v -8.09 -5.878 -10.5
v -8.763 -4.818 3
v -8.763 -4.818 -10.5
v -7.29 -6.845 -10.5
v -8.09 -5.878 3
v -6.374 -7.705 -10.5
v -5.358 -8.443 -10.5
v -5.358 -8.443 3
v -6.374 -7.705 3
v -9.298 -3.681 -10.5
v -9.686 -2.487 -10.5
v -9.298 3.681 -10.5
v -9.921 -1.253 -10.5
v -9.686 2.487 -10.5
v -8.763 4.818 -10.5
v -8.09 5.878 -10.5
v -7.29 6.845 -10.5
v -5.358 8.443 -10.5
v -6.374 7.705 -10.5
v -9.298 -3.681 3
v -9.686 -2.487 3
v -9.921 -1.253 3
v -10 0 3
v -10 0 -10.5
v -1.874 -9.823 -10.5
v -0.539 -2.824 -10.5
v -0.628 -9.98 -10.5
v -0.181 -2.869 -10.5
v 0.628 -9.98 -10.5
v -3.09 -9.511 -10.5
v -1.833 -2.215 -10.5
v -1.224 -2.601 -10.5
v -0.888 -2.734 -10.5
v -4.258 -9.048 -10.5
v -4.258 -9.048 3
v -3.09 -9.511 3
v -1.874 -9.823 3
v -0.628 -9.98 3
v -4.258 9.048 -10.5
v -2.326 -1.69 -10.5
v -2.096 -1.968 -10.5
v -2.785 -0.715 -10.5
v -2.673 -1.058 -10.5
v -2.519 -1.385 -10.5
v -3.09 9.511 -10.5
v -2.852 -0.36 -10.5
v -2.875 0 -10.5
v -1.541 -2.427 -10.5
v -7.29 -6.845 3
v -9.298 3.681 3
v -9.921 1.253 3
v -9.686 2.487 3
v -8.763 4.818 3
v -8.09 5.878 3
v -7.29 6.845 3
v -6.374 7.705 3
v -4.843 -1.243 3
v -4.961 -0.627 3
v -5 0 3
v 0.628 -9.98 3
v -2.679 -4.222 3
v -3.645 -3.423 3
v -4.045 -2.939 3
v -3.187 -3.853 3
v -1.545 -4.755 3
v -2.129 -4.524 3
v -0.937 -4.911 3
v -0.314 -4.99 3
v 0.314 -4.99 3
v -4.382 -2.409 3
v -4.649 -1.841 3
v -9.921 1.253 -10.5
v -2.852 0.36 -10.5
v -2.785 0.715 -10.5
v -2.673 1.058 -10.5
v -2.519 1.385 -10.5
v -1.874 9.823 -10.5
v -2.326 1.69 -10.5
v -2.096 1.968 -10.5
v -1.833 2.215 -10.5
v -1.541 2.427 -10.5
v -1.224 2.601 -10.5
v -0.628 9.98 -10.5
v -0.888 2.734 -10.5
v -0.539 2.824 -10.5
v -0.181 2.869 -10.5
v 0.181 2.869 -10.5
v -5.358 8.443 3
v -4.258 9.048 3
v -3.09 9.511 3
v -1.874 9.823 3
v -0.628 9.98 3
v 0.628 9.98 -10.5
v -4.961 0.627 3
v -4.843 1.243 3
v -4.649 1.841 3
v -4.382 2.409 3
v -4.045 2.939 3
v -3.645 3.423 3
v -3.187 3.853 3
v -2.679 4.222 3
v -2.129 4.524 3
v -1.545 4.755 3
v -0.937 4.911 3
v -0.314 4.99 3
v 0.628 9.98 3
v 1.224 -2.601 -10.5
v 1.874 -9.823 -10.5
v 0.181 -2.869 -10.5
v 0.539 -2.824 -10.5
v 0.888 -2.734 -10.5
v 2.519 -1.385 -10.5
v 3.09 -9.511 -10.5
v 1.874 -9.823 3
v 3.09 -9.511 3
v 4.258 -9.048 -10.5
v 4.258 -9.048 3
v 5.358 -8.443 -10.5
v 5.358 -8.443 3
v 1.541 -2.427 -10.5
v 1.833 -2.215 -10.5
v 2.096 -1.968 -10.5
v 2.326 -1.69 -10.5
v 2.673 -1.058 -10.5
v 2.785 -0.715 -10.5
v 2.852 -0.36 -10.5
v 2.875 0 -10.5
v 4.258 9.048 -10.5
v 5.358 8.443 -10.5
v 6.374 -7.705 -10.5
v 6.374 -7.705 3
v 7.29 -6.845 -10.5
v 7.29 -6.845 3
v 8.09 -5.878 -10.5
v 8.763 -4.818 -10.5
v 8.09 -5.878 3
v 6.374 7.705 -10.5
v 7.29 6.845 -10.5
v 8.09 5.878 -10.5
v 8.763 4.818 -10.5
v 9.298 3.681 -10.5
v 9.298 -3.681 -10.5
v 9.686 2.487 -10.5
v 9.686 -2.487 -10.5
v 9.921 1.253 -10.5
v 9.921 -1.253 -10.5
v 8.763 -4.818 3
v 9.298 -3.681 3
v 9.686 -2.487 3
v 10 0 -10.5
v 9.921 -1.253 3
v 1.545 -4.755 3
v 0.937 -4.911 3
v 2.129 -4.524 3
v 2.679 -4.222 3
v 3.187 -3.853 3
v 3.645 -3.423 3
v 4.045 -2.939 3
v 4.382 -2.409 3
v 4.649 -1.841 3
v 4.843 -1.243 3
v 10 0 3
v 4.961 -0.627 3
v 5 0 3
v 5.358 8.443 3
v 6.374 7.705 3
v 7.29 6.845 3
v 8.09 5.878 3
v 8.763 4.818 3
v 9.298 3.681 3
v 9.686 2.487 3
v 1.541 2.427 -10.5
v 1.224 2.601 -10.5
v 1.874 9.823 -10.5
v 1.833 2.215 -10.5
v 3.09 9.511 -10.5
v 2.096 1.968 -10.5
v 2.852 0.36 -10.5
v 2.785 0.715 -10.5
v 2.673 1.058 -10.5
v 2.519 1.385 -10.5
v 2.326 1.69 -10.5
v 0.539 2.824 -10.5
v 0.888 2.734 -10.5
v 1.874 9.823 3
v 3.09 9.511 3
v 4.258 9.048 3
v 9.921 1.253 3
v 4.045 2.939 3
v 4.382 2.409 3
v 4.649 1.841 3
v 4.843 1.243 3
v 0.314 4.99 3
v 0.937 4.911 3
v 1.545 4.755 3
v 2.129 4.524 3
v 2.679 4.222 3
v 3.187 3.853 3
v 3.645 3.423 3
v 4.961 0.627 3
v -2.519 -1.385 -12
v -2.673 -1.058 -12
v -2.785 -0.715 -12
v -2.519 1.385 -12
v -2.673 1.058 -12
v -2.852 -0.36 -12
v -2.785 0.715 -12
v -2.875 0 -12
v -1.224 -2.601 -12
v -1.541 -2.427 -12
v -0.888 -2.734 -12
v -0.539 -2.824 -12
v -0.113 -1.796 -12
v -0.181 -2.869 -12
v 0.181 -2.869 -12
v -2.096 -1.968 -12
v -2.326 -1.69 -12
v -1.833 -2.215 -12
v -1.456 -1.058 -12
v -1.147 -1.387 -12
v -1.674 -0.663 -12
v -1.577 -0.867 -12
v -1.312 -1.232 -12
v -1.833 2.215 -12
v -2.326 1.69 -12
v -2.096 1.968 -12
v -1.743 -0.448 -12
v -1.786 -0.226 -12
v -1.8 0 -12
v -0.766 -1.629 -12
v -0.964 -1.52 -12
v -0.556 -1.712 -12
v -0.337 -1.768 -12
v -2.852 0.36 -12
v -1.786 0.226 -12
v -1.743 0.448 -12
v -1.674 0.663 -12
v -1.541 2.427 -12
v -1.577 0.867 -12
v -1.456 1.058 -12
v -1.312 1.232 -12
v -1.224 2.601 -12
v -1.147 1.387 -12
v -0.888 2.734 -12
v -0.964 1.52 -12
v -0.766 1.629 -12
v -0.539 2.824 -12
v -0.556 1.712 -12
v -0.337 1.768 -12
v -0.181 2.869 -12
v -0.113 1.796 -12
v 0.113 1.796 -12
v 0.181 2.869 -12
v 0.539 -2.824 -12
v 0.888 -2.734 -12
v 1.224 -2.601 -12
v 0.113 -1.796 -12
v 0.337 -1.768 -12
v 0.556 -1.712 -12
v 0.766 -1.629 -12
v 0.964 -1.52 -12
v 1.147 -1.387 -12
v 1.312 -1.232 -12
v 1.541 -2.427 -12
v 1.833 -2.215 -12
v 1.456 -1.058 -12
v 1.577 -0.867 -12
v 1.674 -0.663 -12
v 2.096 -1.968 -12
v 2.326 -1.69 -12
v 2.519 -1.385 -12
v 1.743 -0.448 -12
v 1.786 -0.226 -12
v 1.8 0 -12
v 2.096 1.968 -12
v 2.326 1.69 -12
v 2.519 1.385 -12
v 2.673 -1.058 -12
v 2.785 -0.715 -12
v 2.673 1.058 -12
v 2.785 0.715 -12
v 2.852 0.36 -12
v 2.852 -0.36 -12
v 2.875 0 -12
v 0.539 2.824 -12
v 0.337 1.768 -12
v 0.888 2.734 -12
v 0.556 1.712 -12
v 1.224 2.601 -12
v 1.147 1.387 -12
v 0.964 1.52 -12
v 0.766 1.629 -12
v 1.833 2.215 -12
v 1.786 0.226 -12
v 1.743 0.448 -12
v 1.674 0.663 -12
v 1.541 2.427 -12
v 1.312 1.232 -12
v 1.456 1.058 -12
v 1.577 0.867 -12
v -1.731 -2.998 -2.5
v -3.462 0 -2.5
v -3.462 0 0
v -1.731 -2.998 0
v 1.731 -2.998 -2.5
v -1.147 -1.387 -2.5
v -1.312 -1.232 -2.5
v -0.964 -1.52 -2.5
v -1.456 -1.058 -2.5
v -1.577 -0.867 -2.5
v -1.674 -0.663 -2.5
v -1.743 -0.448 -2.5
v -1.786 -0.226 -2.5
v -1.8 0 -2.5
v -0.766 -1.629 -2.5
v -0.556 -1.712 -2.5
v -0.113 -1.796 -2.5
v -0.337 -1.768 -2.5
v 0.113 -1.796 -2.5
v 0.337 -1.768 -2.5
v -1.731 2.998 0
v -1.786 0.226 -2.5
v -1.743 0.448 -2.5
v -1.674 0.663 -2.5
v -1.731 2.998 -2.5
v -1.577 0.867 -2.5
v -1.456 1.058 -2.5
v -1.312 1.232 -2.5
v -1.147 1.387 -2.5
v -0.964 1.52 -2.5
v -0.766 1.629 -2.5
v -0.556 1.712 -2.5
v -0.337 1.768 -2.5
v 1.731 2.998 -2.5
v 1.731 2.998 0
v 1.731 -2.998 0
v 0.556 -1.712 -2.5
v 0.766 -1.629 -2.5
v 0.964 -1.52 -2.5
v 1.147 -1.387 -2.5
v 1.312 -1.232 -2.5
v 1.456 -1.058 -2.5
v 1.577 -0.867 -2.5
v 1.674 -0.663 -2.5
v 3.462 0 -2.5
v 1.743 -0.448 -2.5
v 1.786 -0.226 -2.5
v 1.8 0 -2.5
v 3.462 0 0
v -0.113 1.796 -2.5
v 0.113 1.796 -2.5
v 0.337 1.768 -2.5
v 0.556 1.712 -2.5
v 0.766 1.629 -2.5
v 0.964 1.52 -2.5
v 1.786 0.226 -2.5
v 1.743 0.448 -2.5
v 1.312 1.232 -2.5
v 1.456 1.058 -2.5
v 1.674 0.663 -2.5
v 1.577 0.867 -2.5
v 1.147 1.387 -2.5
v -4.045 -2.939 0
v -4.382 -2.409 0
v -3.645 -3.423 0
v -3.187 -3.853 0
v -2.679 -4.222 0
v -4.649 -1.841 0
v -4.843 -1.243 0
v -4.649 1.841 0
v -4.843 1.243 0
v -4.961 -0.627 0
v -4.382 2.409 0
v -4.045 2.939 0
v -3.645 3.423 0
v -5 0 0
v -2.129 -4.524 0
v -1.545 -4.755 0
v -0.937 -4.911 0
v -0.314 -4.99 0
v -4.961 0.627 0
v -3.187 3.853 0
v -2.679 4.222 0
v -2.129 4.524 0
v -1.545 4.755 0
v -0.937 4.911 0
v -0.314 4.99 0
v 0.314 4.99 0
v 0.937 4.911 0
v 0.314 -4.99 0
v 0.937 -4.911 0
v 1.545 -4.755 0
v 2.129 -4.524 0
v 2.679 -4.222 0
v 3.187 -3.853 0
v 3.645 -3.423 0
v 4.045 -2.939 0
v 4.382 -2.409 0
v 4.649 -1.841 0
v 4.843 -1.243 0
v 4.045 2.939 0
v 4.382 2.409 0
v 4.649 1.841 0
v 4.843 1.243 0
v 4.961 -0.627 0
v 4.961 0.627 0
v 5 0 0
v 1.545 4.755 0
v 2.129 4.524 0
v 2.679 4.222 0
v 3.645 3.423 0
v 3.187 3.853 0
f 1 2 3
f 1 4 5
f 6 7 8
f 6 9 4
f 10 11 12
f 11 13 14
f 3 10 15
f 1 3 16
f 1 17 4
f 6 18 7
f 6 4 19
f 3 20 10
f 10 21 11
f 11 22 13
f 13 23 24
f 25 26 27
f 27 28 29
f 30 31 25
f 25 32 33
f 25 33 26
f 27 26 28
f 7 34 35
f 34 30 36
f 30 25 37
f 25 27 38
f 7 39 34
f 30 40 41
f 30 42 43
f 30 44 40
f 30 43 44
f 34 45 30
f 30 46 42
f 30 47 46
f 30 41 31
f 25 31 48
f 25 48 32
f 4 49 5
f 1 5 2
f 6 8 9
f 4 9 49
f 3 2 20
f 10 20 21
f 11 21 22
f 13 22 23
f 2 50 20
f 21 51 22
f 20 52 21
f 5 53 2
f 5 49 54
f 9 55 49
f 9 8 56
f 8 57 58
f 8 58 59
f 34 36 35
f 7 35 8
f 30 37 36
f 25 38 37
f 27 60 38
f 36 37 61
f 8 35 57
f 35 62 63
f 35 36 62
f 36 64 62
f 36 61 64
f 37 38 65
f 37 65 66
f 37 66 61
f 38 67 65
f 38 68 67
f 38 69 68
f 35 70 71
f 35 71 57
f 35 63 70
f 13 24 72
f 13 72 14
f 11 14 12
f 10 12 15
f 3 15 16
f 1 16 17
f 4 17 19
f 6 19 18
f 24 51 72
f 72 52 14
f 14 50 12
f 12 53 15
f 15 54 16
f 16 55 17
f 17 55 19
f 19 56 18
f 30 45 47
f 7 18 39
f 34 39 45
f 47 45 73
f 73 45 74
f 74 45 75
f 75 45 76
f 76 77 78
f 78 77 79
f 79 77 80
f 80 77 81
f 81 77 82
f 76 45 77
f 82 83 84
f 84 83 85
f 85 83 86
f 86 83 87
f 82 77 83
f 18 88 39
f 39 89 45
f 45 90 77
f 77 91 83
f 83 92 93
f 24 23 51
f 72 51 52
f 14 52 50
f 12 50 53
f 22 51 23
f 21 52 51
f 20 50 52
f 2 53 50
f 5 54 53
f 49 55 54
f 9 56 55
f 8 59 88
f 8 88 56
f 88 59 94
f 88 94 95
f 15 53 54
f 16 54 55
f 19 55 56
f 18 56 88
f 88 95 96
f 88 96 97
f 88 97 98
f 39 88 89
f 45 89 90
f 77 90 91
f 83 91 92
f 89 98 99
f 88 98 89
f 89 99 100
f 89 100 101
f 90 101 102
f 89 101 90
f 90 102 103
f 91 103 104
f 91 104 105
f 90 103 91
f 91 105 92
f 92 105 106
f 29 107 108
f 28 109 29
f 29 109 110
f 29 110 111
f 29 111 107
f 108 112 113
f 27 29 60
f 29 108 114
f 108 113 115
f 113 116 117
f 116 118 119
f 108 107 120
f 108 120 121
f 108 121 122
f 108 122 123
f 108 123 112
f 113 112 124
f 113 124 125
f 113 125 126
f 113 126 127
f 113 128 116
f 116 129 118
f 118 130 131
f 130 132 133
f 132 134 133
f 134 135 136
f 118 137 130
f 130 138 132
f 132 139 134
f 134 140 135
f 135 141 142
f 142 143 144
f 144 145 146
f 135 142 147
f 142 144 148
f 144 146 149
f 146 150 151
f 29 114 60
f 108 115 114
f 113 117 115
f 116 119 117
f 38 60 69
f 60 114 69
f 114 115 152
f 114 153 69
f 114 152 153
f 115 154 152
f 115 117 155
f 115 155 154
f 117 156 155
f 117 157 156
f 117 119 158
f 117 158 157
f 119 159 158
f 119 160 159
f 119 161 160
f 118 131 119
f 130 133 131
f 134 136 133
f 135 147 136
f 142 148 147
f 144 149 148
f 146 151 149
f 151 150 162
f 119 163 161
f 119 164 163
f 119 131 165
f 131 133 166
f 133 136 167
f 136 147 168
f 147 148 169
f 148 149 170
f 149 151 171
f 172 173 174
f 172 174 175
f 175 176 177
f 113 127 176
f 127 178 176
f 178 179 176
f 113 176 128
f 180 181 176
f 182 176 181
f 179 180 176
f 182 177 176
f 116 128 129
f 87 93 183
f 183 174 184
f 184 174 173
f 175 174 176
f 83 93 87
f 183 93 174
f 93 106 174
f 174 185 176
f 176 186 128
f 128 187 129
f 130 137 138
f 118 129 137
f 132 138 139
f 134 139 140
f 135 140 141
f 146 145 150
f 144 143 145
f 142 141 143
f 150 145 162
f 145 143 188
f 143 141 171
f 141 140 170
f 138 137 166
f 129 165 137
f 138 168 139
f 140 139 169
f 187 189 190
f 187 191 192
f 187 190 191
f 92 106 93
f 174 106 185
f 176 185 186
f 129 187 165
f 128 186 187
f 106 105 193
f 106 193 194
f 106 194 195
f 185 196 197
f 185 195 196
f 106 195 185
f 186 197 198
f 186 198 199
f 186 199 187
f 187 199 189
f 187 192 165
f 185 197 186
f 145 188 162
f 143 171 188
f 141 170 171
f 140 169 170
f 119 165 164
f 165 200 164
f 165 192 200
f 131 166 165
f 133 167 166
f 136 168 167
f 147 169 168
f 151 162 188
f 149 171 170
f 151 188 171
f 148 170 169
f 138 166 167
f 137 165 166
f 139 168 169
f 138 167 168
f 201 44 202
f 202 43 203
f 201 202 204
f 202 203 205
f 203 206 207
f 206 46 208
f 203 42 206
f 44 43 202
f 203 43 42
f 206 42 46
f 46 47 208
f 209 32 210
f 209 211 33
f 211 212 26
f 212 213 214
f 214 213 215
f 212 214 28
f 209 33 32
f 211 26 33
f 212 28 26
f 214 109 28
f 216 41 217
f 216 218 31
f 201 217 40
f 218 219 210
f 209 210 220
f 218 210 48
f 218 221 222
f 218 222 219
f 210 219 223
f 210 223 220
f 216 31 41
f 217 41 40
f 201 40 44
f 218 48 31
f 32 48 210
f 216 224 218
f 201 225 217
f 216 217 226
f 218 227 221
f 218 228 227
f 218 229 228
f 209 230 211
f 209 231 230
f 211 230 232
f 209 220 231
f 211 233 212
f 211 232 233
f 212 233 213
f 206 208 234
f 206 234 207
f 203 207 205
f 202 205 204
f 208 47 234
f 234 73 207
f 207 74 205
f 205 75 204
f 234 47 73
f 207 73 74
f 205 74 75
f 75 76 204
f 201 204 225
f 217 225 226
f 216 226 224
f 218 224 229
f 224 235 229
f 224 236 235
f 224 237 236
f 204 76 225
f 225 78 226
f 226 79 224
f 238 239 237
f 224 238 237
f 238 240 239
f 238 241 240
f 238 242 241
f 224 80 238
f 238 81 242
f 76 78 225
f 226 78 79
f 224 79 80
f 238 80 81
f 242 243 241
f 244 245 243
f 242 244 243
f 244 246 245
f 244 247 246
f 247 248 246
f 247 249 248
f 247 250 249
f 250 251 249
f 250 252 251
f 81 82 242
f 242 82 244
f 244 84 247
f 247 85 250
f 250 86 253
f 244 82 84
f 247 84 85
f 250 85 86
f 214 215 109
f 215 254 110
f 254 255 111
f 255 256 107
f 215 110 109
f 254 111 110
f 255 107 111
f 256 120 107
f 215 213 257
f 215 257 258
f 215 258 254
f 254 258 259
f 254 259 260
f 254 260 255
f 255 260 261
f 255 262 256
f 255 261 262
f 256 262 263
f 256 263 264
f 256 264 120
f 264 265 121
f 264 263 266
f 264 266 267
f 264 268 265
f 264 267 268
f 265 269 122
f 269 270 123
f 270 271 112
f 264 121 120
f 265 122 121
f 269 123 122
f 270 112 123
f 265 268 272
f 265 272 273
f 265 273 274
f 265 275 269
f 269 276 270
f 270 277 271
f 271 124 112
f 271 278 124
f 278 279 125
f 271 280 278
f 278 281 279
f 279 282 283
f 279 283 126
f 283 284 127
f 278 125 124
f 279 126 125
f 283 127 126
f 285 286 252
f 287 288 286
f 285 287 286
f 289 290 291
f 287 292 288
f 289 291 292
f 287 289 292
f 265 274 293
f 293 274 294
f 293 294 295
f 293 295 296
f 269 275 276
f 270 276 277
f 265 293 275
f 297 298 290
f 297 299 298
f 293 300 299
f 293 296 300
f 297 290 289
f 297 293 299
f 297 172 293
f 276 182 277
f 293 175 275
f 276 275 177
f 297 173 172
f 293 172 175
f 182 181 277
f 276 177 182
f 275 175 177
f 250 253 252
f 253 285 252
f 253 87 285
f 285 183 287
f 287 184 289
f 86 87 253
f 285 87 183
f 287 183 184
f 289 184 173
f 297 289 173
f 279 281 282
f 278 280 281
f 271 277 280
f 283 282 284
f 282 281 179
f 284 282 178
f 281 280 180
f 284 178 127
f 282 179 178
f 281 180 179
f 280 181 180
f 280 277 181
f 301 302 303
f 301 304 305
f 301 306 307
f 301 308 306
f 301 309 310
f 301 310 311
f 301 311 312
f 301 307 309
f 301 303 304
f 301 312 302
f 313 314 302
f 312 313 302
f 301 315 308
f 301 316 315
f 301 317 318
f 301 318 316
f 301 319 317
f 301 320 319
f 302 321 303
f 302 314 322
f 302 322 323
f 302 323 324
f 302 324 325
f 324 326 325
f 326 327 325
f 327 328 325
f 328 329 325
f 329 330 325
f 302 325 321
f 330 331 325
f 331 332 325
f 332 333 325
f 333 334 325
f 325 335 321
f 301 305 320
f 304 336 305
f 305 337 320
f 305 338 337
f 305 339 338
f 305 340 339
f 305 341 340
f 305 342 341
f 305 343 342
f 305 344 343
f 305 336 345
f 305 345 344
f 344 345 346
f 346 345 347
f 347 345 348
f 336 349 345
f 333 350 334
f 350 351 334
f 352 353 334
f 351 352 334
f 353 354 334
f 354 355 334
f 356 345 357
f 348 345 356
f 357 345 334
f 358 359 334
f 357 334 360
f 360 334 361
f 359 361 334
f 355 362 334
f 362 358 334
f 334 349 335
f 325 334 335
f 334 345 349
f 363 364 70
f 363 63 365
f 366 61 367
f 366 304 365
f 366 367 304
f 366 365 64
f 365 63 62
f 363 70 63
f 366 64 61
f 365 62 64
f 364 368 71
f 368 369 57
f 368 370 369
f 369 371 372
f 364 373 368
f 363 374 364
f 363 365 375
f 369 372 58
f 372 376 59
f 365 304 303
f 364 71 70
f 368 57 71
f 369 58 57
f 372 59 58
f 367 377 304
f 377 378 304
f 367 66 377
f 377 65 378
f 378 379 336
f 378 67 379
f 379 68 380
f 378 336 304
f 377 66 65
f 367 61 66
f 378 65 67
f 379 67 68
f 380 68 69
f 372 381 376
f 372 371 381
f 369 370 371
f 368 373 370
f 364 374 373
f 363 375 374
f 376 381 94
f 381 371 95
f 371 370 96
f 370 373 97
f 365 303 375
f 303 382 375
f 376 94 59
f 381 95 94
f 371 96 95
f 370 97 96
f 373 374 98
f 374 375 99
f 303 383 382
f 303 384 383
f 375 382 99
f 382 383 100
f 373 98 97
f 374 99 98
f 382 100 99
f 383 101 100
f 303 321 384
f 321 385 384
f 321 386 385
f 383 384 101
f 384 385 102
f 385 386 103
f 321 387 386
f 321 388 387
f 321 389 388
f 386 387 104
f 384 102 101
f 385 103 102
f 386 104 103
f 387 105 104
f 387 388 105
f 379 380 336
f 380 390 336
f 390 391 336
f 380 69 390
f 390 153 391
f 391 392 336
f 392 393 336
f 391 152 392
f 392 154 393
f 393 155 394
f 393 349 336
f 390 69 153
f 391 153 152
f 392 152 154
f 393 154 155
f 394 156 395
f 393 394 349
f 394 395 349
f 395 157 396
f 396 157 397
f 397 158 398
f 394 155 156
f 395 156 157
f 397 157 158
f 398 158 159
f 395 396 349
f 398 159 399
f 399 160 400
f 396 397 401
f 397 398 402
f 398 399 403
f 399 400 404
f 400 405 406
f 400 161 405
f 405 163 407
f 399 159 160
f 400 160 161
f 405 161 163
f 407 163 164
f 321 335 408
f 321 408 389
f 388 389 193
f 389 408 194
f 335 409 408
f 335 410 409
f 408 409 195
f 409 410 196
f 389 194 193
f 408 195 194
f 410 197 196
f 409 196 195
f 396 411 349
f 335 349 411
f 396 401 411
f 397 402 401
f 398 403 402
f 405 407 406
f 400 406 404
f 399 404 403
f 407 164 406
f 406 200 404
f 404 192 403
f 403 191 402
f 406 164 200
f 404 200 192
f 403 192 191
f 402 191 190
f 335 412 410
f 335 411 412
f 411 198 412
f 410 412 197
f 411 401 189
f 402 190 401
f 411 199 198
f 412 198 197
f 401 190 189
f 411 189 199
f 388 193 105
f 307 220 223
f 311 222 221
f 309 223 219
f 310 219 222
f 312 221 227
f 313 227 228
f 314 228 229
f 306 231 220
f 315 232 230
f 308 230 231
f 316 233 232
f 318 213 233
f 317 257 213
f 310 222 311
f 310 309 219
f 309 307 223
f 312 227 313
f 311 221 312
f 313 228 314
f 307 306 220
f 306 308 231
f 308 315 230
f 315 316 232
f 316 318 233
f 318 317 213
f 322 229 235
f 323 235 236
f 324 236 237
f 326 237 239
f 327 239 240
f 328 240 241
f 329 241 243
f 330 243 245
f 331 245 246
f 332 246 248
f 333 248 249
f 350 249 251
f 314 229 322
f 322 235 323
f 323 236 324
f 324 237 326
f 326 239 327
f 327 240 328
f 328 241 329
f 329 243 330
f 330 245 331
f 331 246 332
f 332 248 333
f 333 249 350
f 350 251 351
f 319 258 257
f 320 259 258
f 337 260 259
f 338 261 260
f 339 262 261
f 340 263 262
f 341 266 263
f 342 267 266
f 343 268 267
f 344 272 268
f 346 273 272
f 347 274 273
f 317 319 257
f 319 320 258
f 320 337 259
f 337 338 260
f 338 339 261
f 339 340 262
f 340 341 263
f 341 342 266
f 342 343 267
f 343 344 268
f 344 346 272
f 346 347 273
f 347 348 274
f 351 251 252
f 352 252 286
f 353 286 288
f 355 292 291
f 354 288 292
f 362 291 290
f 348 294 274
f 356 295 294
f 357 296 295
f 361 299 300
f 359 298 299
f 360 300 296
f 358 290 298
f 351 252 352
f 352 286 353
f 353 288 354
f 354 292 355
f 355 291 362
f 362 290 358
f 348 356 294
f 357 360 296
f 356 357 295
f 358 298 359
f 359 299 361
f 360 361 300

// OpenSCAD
$fn = 50;

difference() {
	union() {
		translate(v = [0, 0, -10.5]) {
			cylinder(h = 13.5, r = 10.0);
		}
		#translate(v = [0, 0, -12.0]) {
			cylinder(h = 12, r = 2.875);
		}
	}
	union() {
		translate(v = [0, 0, 0]) {
			rotate(a = [0, 0, 0]) {
				difference() {
					union() {
						translate(v = [0, 0, -2.5]) {
							linear_extrude(height = 2.5) {
								polygon(points = [[3.4619999999999997, 0.0], [1.7310000000000003, 2.9981799479017264], [-1.7309999999999992, 2.9981799479017264], [-3.4619999999999997, 4.2397272186481365e-16], [-1.7310000000000014, -2.998179947901726], [1.7309999999999977, -2.9981799479017277]]);
							}
						}
					}
					union();
				}
			}
		}
		#cylinder(h = 3, r = 5.0);
		#translate(v = [0, 0, -100.0]) {
			cylinder(h = 200, r = 1.8);
		}
	}
}
